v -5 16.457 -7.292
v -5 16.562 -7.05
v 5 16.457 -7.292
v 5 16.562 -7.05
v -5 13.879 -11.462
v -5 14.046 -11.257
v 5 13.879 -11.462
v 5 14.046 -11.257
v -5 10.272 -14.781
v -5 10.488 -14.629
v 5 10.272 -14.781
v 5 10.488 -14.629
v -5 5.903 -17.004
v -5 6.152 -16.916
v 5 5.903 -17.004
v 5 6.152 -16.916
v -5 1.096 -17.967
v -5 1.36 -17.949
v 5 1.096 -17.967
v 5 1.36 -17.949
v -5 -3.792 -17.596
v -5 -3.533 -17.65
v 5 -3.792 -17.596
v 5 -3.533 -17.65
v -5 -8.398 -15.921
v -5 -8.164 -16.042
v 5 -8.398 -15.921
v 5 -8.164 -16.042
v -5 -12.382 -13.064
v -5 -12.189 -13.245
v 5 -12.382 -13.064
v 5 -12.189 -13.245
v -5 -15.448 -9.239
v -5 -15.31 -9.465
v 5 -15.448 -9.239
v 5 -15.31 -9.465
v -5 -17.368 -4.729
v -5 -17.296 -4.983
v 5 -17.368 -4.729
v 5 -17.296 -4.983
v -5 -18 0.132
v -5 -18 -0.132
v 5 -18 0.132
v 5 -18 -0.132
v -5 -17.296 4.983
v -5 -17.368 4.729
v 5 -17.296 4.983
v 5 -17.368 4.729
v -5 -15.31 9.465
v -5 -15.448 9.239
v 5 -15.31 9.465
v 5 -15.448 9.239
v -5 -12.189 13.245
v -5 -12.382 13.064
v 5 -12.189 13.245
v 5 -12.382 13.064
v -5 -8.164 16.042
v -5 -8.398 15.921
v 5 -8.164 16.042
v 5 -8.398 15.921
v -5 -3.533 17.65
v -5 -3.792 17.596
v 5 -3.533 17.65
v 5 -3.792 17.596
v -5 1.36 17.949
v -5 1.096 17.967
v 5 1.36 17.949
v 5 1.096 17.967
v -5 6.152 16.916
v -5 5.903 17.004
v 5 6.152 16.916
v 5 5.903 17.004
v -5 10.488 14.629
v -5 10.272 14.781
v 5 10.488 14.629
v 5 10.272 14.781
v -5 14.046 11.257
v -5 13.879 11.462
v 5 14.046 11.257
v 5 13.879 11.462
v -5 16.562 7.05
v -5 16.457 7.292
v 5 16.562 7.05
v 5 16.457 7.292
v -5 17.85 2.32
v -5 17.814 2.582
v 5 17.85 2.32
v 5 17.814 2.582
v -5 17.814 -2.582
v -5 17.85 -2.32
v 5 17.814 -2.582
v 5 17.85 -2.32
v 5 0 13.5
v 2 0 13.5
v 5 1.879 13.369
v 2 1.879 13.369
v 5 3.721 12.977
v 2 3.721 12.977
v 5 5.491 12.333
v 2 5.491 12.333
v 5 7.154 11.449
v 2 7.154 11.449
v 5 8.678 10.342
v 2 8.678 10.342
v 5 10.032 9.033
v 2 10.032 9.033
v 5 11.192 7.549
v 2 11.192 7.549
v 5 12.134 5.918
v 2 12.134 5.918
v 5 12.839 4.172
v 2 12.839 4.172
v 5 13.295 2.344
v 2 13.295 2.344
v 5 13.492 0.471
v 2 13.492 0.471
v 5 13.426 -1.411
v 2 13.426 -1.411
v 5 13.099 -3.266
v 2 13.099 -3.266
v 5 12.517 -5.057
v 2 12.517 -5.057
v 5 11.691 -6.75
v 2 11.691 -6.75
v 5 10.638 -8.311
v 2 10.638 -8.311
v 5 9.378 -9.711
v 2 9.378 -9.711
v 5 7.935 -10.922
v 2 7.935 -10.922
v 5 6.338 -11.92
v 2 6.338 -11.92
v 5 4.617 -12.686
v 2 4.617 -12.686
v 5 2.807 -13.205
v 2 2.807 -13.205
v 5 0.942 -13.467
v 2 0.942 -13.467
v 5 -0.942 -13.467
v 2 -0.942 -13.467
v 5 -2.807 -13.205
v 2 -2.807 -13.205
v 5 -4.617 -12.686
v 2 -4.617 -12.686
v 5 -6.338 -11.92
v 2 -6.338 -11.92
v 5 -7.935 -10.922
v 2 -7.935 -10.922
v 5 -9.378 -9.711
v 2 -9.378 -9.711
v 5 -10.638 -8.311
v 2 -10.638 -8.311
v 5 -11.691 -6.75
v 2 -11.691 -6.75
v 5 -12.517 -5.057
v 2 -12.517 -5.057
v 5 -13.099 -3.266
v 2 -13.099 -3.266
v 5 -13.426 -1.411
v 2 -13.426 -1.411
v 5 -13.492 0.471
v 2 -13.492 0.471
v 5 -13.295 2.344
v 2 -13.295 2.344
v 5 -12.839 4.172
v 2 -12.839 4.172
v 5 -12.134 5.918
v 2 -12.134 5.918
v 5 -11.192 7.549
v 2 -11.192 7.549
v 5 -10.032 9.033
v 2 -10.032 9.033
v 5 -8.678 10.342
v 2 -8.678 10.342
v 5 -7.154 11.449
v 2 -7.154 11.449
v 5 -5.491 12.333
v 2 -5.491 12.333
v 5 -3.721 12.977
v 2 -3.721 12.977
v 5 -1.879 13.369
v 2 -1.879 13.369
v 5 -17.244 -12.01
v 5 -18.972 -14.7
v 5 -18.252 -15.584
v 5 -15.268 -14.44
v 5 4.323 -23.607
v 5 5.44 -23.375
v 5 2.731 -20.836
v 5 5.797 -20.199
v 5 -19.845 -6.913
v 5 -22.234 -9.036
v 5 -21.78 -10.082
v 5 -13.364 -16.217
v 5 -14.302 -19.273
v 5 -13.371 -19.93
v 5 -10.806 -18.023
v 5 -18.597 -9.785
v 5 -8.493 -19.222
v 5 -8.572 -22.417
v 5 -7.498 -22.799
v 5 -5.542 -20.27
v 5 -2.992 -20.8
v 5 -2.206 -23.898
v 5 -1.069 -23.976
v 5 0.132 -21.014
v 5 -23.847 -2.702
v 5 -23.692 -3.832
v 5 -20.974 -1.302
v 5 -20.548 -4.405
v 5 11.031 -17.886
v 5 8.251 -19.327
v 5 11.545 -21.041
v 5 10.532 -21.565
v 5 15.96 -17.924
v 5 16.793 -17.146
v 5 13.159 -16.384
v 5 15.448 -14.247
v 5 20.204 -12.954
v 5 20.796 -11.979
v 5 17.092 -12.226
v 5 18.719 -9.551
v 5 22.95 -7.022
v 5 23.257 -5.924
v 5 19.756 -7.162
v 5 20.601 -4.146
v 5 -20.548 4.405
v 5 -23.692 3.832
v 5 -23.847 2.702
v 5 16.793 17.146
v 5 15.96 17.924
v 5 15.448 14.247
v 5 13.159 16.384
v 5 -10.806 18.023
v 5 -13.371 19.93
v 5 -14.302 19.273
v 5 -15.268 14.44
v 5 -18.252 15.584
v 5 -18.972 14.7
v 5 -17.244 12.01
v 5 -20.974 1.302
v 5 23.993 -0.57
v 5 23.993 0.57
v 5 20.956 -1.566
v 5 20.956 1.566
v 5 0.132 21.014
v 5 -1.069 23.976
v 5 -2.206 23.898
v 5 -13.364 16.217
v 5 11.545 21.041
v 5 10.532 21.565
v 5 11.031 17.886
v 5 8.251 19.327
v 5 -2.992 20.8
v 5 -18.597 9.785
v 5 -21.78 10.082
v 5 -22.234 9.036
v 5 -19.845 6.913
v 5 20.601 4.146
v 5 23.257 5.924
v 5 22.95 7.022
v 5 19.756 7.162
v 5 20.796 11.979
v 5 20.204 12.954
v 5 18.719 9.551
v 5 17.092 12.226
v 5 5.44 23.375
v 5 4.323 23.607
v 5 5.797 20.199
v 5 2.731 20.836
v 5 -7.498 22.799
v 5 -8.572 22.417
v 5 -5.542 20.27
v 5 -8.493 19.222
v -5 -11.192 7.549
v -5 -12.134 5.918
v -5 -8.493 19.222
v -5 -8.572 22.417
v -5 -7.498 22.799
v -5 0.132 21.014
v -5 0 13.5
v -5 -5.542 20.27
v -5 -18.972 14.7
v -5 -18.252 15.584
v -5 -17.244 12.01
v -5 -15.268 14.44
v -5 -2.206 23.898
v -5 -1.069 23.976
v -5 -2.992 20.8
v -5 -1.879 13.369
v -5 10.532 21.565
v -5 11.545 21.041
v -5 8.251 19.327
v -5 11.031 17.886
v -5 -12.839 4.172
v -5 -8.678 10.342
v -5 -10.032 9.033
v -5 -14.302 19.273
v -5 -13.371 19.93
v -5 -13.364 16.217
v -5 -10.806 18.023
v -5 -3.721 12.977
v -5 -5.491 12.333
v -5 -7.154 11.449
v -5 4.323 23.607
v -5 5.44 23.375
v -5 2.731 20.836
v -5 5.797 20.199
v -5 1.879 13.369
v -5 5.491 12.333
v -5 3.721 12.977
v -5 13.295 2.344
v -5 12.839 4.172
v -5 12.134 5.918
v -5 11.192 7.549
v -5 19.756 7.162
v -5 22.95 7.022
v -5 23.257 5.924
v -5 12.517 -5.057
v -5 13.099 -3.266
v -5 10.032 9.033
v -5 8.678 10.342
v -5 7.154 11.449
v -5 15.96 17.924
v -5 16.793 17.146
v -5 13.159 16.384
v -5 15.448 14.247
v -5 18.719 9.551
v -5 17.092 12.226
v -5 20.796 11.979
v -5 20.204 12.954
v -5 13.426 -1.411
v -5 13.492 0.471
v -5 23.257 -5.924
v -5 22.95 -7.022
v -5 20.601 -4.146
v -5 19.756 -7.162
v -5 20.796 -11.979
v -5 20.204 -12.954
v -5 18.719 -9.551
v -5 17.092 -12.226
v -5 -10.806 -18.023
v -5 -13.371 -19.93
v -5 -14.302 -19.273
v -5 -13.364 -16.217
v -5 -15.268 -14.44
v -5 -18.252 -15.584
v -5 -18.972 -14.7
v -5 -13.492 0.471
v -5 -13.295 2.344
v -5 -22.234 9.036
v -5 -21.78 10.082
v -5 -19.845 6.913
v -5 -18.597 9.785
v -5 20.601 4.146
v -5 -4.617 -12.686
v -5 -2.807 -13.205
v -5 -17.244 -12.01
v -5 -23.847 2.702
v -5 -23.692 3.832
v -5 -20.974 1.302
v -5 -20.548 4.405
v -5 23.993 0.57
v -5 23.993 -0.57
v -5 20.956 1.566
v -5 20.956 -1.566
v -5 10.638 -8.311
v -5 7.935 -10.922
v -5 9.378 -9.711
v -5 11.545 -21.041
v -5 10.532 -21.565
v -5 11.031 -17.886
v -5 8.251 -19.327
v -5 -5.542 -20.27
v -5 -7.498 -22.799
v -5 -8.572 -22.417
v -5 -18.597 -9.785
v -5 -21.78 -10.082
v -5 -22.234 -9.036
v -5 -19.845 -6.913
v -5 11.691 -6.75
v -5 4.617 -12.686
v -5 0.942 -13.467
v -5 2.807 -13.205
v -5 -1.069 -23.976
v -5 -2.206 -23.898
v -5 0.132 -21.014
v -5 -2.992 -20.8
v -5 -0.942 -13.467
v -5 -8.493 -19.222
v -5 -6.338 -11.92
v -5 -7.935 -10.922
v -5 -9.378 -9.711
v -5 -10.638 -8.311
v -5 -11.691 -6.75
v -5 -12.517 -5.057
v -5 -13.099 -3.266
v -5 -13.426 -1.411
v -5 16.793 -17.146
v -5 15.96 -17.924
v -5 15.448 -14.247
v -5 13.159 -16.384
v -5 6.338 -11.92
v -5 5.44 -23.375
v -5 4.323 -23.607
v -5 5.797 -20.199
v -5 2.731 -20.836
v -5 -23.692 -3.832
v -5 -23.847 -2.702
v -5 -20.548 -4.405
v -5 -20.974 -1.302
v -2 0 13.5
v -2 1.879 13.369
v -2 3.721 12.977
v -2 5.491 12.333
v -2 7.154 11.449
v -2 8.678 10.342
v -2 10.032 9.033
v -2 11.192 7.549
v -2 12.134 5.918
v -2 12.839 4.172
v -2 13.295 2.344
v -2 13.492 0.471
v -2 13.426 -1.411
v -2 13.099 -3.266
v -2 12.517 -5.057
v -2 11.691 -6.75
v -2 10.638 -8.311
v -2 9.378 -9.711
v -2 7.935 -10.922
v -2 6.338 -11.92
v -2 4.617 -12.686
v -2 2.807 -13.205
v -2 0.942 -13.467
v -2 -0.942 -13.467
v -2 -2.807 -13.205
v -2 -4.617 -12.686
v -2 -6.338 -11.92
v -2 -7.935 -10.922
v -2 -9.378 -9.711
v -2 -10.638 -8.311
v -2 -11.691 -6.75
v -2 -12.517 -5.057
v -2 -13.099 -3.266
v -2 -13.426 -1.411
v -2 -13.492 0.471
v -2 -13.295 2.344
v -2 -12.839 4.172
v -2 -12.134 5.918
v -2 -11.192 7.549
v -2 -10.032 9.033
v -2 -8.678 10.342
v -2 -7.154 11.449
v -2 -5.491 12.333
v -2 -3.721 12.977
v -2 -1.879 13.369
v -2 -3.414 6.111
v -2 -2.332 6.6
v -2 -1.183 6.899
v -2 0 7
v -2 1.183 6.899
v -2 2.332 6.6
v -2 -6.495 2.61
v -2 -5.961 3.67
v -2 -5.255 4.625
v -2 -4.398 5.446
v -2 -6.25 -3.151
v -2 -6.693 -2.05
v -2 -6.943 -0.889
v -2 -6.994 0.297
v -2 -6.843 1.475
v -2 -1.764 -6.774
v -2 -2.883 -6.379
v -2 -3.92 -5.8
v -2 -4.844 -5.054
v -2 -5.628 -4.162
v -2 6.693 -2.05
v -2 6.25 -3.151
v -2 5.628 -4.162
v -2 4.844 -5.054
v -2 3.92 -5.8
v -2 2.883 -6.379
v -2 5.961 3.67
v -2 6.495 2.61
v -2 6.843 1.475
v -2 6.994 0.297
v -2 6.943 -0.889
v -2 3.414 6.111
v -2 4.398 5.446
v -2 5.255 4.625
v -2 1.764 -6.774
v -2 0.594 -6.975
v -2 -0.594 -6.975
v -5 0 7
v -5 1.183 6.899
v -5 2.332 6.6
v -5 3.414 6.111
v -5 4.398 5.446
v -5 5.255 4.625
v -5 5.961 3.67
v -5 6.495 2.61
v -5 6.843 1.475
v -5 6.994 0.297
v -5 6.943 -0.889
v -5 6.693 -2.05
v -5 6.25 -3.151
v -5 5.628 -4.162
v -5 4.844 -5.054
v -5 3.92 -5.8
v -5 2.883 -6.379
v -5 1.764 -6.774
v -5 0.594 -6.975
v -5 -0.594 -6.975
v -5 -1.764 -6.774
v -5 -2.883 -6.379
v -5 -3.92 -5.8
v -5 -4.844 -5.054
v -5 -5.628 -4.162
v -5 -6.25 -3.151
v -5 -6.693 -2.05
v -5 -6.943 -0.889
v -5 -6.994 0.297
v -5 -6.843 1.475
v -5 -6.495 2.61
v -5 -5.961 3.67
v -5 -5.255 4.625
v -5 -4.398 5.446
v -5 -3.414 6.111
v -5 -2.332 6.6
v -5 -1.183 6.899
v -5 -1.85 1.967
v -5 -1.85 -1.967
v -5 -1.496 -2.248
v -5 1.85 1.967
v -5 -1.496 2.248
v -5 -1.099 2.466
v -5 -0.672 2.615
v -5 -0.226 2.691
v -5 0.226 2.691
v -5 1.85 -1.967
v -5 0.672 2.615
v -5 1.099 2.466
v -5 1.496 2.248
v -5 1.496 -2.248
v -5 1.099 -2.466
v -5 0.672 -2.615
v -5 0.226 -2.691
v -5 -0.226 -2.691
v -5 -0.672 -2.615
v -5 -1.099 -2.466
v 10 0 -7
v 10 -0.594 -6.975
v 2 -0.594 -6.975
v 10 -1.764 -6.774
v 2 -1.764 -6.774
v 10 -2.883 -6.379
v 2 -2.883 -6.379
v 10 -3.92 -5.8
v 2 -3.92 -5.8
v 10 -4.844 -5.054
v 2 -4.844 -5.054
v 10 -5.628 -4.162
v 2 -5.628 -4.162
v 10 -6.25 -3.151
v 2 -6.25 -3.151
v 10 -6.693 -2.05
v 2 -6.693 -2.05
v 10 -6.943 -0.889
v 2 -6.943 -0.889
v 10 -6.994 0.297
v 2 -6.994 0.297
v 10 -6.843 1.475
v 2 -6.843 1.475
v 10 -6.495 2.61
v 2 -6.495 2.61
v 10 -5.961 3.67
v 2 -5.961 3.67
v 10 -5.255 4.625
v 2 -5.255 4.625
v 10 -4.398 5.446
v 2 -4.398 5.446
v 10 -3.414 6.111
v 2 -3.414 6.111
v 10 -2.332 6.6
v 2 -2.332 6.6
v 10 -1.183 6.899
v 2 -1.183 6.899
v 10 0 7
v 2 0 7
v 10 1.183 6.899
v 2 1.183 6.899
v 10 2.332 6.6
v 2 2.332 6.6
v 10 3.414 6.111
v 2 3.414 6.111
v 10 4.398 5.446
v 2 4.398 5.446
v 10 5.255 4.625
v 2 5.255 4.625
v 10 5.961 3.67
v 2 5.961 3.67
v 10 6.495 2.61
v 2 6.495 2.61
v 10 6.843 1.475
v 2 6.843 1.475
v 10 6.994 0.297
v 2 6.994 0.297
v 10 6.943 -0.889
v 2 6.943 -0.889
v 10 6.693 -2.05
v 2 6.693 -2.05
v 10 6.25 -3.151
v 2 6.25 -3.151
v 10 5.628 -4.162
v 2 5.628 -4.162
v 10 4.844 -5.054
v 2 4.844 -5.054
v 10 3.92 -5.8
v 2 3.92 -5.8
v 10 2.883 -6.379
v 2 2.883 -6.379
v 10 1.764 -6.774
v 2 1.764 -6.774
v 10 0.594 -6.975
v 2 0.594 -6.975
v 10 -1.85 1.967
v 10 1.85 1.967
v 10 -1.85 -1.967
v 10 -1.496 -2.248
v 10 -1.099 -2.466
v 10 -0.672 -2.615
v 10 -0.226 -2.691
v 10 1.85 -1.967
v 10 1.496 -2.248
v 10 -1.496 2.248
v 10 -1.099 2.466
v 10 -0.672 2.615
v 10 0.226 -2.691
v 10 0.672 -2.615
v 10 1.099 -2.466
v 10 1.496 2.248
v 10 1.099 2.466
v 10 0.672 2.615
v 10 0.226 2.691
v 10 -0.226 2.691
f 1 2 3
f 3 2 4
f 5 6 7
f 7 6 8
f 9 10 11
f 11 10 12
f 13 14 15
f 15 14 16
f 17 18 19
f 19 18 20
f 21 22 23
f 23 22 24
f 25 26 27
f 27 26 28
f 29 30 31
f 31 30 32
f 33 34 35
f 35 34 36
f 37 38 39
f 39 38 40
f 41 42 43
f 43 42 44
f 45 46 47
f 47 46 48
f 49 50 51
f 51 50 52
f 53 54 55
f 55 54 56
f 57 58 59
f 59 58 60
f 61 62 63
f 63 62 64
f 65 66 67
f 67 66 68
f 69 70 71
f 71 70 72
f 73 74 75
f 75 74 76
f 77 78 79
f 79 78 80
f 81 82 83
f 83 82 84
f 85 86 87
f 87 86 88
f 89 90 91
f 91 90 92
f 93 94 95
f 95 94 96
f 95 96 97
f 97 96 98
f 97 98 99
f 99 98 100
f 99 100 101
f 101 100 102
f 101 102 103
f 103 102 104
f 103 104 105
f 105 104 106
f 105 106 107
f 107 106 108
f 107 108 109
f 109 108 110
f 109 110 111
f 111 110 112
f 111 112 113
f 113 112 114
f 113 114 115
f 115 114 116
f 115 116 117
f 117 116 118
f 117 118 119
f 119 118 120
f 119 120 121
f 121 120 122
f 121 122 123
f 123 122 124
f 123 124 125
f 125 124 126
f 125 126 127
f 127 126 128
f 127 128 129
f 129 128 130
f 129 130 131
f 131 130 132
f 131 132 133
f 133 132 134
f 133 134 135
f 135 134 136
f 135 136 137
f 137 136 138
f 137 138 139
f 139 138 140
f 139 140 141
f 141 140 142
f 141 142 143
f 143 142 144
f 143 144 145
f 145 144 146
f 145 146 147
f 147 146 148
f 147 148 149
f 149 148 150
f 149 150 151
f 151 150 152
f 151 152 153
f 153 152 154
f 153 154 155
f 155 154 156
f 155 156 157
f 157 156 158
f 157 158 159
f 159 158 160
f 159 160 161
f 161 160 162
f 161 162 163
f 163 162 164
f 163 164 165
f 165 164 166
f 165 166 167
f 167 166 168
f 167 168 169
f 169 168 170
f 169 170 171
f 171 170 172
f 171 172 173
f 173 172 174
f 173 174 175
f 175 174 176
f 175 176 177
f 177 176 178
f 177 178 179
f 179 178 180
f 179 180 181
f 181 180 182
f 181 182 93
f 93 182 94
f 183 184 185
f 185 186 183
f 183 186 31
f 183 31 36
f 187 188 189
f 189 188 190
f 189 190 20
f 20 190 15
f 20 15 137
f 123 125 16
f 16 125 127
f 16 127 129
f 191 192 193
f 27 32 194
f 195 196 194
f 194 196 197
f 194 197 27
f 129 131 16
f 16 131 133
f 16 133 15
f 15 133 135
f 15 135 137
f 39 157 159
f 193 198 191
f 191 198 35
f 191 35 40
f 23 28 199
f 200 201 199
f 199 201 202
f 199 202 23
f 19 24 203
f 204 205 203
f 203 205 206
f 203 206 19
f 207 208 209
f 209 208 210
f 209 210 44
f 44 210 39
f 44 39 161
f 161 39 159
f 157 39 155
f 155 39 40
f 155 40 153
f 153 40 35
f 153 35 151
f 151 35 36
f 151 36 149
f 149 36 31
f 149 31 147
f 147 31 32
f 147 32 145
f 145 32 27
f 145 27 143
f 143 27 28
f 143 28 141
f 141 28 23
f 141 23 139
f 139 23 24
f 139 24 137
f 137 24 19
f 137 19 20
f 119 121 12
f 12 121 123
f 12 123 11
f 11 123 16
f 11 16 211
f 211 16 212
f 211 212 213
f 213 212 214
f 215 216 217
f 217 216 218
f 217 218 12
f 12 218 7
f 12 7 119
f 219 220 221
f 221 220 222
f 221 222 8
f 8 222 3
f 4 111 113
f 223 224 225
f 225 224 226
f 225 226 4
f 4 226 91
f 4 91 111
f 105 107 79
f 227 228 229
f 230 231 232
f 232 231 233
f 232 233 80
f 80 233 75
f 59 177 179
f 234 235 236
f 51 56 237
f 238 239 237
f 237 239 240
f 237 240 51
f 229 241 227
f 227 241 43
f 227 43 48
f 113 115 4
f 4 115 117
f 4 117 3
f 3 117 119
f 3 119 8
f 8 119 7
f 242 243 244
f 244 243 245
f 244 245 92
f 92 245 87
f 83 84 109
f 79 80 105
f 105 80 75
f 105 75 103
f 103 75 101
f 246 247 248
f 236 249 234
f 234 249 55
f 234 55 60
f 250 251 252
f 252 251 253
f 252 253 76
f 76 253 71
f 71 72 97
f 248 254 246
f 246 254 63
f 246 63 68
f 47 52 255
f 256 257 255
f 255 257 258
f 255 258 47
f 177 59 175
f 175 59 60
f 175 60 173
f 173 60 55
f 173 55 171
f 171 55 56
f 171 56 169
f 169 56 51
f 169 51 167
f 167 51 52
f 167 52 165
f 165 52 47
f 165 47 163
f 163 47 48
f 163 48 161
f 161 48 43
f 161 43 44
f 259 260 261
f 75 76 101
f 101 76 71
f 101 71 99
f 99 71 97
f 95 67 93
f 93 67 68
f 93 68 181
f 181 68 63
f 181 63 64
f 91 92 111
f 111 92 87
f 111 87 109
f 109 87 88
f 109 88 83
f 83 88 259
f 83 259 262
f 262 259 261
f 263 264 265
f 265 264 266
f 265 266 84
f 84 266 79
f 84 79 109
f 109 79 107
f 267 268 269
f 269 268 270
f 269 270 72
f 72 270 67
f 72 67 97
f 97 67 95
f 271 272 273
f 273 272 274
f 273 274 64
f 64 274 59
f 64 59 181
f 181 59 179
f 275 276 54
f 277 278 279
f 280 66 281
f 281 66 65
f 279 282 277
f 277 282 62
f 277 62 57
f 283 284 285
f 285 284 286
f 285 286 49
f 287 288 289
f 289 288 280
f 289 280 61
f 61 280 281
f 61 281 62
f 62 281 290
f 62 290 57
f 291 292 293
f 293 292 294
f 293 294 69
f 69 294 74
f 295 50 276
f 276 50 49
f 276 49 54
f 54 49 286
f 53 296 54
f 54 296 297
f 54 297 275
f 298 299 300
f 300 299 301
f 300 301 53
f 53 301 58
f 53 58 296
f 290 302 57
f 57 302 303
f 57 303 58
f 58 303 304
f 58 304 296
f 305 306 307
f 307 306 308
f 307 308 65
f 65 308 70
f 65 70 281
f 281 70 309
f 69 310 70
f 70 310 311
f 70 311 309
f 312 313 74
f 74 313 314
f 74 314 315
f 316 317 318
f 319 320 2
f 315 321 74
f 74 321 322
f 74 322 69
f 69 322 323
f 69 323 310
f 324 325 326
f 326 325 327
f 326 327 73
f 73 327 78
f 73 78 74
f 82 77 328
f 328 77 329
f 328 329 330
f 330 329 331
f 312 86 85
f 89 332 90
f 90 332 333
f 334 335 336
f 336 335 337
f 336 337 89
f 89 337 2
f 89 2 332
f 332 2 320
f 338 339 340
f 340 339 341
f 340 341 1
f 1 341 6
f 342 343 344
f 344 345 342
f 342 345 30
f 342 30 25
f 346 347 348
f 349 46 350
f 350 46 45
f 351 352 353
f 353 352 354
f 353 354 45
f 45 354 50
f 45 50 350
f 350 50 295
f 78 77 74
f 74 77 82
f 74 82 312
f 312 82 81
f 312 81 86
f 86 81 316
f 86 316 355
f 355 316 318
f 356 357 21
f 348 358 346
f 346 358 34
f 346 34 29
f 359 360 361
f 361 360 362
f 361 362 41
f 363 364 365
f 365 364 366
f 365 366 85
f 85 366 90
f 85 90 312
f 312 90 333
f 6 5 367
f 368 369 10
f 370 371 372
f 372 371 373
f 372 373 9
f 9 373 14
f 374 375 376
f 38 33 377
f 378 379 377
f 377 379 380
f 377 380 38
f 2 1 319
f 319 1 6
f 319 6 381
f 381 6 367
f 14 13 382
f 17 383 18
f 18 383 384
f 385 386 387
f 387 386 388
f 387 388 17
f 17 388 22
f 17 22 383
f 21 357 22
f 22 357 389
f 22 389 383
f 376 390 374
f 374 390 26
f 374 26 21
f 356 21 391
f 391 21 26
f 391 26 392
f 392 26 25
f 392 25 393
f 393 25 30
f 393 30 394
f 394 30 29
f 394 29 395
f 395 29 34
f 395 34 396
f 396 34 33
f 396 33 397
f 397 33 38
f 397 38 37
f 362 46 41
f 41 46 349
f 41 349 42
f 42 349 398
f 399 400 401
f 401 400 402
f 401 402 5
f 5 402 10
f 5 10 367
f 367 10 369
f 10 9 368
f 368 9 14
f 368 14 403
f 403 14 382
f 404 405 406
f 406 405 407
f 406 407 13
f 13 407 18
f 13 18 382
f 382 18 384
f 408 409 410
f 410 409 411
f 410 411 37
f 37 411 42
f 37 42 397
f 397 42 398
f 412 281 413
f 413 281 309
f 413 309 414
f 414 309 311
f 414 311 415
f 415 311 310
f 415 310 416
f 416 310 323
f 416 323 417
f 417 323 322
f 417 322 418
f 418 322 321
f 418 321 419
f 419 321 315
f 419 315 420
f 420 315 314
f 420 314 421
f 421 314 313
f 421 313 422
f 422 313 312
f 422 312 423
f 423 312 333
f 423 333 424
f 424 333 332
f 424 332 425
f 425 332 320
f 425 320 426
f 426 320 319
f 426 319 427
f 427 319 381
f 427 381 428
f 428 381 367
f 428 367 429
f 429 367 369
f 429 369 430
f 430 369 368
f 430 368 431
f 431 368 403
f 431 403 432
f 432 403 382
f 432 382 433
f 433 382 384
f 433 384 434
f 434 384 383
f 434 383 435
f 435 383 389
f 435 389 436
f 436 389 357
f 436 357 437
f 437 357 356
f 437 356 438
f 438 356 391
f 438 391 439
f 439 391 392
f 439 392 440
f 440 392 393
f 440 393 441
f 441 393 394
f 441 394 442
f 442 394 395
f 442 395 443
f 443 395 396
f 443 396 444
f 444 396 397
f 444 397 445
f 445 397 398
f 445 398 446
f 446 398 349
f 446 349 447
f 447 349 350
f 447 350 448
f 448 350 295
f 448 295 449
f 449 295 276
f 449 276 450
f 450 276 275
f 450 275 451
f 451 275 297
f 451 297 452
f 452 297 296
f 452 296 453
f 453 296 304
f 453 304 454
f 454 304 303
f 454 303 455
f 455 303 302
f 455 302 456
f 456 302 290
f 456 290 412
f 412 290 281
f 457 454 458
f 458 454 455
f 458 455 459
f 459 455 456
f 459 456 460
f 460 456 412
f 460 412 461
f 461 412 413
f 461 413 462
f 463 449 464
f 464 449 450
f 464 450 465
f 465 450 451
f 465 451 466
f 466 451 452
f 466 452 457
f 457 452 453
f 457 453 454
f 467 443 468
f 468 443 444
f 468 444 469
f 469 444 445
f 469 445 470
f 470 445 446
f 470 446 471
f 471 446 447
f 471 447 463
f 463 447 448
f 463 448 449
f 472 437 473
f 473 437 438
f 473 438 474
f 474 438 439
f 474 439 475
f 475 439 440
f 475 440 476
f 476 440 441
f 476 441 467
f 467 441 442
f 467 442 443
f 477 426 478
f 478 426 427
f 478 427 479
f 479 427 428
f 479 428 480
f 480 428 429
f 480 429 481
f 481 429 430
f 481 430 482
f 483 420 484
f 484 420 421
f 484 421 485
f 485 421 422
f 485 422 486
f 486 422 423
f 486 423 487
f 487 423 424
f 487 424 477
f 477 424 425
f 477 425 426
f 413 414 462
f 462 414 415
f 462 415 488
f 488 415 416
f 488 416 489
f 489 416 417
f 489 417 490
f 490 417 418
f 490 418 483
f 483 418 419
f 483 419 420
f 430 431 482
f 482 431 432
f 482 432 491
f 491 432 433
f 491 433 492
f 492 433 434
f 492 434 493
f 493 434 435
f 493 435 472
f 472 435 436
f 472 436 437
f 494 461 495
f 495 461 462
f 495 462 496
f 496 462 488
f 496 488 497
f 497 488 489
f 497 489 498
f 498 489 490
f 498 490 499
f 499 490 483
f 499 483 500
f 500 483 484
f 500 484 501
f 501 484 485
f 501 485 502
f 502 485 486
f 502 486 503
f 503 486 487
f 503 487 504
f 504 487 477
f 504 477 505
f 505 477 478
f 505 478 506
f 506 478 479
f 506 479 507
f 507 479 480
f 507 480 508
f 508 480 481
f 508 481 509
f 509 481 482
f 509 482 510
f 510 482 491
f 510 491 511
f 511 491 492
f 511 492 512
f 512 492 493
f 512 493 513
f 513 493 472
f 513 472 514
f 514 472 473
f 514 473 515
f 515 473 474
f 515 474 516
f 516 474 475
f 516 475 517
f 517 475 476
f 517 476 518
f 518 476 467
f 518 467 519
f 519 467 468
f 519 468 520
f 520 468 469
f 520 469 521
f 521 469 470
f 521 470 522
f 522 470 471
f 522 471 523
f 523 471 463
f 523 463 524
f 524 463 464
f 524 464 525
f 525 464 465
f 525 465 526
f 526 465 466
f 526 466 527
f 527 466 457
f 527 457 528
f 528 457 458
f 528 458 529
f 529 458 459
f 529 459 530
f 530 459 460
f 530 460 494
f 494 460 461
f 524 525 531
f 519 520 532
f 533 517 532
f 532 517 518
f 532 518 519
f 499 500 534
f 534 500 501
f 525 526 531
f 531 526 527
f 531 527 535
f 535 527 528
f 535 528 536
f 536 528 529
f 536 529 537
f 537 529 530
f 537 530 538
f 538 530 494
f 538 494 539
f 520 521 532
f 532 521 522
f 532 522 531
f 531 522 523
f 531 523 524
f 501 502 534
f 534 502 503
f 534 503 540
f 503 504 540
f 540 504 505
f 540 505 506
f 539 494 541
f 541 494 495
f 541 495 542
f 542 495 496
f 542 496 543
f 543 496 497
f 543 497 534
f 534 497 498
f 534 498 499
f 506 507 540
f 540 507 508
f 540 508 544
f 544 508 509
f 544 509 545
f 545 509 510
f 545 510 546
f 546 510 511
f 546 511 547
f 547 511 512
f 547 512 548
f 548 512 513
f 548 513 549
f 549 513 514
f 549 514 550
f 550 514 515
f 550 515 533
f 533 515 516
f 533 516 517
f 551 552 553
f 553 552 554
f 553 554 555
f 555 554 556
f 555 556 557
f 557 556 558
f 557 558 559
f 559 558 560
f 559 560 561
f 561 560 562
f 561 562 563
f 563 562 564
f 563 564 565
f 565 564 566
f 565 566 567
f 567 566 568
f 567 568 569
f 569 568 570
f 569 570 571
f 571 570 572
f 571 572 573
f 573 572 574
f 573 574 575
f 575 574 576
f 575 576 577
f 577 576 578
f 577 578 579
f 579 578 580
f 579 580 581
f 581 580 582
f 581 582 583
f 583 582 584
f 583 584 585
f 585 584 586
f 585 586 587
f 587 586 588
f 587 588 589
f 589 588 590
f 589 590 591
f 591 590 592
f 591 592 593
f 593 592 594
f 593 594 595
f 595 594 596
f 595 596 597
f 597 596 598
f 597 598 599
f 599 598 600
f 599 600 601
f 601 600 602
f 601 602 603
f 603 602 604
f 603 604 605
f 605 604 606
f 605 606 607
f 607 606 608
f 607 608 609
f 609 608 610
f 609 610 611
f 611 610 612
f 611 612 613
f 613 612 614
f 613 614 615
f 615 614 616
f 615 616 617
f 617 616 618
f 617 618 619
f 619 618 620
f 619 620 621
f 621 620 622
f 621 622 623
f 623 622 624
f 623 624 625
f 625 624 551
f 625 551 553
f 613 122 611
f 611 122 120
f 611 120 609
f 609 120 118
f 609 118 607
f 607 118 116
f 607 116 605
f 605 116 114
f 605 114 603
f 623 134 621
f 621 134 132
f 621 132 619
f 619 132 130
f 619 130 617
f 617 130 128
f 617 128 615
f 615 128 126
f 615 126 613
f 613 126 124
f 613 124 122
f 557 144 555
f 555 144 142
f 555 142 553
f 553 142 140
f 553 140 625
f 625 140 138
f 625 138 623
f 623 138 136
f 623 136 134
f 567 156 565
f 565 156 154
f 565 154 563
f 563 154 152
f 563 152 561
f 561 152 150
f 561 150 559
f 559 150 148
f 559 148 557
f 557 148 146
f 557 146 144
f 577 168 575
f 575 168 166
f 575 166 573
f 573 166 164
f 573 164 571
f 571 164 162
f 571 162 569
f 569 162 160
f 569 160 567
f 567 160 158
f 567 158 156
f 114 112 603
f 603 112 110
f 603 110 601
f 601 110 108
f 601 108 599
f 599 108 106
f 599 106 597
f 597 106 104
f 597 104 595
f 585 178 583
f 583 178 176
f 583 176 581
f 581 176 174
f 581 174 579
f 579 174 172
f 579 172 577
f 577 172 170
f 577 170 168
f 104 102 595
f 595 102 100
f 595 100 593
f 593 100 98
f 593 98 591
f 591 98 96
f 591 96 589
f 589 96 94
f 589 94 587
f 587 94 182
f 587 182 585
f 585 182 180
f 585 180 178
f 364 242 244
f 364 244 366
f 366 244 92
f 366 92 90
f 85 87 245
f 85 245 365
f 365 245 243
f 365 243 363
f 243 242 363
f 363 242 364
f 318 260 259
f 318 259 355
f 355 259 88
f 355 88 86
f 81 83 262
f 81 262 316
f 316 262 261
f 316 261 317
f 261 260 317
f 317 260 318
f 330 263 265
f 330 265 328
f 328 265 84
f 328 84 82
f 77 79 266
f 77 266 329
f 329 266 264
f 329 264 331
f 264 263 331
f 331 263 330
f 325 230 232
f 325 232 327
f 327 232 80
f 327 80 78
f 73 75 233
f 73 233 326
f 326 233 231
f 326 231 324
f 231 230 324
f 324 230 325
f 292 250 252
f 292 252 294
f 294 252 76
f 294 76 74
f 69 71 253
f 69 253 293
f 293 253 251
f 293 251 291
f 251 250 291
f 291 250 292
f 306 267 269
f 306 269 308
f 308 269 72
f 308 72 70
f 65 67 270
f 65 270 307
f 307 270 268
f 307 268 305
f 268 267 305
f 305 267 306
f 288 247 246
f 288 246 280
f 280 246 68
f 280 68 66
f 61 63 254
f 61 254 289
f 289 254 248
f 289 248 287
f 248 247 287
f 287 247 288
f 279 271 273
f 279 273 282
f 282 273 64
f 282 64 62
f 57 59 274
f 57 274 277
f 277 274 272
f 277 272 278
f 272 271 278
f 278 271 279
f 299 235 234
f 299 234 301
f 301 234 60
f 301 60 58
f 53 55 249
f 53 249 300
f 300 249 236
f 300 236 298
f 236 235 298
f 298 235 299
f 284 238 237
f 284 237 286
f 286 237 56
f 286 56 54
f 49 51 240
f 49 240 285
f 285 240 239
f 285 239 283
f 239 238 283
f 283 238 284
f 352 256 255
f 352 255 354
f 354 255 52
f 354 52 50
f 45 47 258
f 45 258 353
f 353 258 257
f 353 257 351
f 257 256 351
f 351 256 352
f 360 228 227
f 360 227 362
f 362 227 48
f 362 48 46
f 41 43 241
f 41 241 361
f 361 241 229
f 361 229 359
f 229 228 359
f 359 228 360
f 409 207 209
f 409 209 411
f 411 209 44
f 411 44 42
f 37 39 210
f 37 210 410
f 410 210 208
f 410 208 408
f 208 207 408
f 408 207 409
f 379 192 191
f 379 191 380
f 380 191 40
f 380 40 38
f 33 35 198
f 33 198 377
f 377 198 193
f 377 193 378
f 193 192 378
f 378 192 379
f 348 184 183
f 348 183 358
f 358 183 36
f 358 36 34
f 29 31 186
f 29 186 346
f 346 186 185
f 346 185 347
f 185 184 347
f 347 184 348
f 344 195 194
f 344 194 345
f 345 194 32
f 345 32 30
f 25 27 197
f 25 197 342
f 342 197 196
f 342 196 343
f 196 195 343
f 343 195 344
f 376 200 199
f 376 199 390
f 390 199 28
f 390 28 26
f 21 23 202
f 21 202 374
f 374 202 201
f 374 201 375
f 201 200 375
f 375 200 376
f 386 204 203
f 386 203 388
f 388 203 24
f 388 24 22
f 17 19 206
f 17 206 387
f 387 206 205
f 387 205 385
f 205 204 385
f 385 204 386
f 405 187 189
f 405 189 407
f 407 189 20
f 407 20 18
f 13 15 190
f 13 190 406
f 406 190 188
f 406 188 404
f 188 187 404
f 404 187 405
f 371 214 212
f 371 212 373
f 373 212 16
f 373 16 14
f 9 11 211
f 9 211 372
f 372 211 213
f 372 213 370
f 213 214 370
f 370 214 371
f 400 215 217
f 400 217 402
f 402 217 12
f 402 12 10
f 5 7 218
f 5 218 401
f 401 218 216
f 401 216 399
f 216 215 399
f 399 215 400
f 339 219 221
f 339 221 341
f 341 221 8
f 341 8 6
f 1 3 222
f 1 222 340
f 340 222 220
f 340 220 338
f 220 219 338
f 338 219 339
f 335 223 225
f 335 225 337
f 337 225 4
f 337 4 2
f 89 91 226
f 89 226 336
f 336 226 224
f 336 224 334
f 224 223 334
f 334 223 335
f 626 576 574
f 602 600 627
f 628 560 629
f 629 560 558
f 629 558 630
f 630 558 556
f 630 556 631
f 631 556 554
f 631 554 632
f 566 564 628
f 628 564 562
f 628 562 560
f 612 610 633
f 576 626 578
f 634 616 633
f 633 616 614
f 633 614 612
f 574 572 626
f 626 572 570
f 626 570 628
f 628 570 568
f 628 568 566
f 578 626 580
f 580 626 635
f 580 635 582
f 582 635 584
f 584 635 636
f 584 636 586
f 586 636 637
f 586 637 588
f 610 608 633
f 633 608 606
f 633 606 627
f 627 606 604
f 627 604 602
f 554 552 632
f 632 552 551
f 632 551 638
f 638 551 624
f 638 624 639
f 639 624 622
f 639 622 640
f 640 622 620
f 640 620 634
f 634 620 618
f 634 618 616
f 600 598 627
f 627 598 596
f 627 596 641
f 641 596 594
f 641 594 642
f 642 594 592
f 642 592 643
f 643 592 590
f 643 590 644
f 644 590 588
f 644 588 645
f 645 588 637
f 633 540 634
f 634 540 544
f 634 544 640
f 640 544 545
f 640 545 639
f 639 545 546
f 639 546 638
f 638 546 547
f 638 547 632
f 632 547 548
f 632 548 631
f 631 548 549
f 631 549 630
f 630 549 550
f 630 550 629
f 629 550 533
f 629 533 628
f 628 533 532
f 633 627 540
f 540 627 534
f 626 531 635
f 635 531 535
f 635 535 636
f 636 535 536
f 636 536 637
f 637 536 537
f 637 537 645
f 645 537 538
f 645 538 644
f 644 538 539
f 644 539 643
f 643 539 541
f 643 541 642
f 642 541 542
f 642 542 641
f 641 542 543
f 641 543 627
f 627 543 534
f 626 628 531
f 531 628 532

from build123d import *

# Parameters (mm, degrees)
REVOLVE_1_ANGLE          = 360
EXTRUDE_1_DEPTH          = 10
PATTERN_CIRCULAR_1_COUNT = 23
SKETCH_6_R               = 7
EXTRUDE_2_DEPTH          = 5
CUT_EXTRUDE_2_DEPTH      = 16


with BuildPart() as part:
    # 스케치3 → 회전1 (revolve, symmetric)
    with BuildSketch(Plane.XY) as revolve_1_sk:
        Polygon((-5, 18), (5, 18), (5, 13.5), (2, 13.5), (2, 7), (5, 7), (5, 0), (-5, 0), (-5, 7), (-2, 7), (-2, 13.5), (-5, 13.5), align=None)
    revolve(axis=Axis((-44.782034346, 0, 0), (1, 0, 0)), revolution_arc=REVOLVE_1_ANGLE / 2)
    revolve(revolve_1_sk.sketch, axis=Axis((-44.782034346, 0, 0), (-1, 0, 0)), revolution_arc=REVOLVE_1_ANGLE / 2)

    # 스케치4 → 보스-돌출1 (add, through all)
    with BuildSketch(Plane(origin=(5, 0, 0), x_dir=(0, 0, -1), z_dir=(1, 0, 0))):
        with BuildLine():
            ThreePointArc((0.57, 23.993230295), (0, 24), (-0.57, 23.993230295))
            Line((-0.57, 23.993230295), (-0.57, 17.990972736))
            ThreePointArc((-0.57, 17.990972736), (0.877839967, 17.978581618), (2.32, 17.849862745))
            ThreePointArc((2.32, 17.849862745), (1.565807025, 20.955959615), (0.57, 23.993230295))
        make_face()
        with BuildLine():
            Line((-0.57, 17.990972736), (-0.57, 23.993230295))
            ThreePointArc((-0.57, 23.993230295), (-1.565807025, 20.955959615), (-2.32, 17.849862745))
            ThreePointArc((-2.32, 17.849862745), (-1.446721469, 17.94176683), (-0.57, 17.990972736))
        make_face()
    extrude_1 = extrude(amount=-EXTRUDE_1_DEPTH)

    # 원형 패턴1: 보스-돌출1 ×23 about axis
    pattern_circular_1_axis = Axis((0, 0, 0), (1, 0, 0))
    for i in range(1, PATTERN_CIRCULAR_1_COUNT):
        add(extrude_1.rotate(pattern_circular_1_axis, i * 360 / PATTERN_CIRCULAR_1_COUNT))

    # 스케치6 → 보스-돌출2 (add)
    with BuildSketch(Plane(origin=(5, 0, 0), x_dir=(0, 0, -1), z_dir=(1, 0, 0))):
        Circle(SKETCH_6_R)
    extrude(amount=EXTRUDE_2_DEPTH)

    # 스케치7 → 컷-돌출2 (cut, through all)
    with BuildSketch(Plane.ZY.offset(5)):
        with BuildLine():
            Line((1.966596044, -1.85), (-1.966596044, -1.85))
            ThreePointArc((-1.966596044, -1.85), (-2.7, 0), (-1.966596044, 1.85))
            Line((-1.966596044, 1.85), (1.966596044, 1.85))
            ThreePointArc((1.966596044, 1.85), (2.7, 0), (1.966596044, -1.85))
        make_face()
    extrude(amount=-CUT_EXTRUDE_2_DEPTH, mode=Mode.SUBTRACT)


solid = part.part
